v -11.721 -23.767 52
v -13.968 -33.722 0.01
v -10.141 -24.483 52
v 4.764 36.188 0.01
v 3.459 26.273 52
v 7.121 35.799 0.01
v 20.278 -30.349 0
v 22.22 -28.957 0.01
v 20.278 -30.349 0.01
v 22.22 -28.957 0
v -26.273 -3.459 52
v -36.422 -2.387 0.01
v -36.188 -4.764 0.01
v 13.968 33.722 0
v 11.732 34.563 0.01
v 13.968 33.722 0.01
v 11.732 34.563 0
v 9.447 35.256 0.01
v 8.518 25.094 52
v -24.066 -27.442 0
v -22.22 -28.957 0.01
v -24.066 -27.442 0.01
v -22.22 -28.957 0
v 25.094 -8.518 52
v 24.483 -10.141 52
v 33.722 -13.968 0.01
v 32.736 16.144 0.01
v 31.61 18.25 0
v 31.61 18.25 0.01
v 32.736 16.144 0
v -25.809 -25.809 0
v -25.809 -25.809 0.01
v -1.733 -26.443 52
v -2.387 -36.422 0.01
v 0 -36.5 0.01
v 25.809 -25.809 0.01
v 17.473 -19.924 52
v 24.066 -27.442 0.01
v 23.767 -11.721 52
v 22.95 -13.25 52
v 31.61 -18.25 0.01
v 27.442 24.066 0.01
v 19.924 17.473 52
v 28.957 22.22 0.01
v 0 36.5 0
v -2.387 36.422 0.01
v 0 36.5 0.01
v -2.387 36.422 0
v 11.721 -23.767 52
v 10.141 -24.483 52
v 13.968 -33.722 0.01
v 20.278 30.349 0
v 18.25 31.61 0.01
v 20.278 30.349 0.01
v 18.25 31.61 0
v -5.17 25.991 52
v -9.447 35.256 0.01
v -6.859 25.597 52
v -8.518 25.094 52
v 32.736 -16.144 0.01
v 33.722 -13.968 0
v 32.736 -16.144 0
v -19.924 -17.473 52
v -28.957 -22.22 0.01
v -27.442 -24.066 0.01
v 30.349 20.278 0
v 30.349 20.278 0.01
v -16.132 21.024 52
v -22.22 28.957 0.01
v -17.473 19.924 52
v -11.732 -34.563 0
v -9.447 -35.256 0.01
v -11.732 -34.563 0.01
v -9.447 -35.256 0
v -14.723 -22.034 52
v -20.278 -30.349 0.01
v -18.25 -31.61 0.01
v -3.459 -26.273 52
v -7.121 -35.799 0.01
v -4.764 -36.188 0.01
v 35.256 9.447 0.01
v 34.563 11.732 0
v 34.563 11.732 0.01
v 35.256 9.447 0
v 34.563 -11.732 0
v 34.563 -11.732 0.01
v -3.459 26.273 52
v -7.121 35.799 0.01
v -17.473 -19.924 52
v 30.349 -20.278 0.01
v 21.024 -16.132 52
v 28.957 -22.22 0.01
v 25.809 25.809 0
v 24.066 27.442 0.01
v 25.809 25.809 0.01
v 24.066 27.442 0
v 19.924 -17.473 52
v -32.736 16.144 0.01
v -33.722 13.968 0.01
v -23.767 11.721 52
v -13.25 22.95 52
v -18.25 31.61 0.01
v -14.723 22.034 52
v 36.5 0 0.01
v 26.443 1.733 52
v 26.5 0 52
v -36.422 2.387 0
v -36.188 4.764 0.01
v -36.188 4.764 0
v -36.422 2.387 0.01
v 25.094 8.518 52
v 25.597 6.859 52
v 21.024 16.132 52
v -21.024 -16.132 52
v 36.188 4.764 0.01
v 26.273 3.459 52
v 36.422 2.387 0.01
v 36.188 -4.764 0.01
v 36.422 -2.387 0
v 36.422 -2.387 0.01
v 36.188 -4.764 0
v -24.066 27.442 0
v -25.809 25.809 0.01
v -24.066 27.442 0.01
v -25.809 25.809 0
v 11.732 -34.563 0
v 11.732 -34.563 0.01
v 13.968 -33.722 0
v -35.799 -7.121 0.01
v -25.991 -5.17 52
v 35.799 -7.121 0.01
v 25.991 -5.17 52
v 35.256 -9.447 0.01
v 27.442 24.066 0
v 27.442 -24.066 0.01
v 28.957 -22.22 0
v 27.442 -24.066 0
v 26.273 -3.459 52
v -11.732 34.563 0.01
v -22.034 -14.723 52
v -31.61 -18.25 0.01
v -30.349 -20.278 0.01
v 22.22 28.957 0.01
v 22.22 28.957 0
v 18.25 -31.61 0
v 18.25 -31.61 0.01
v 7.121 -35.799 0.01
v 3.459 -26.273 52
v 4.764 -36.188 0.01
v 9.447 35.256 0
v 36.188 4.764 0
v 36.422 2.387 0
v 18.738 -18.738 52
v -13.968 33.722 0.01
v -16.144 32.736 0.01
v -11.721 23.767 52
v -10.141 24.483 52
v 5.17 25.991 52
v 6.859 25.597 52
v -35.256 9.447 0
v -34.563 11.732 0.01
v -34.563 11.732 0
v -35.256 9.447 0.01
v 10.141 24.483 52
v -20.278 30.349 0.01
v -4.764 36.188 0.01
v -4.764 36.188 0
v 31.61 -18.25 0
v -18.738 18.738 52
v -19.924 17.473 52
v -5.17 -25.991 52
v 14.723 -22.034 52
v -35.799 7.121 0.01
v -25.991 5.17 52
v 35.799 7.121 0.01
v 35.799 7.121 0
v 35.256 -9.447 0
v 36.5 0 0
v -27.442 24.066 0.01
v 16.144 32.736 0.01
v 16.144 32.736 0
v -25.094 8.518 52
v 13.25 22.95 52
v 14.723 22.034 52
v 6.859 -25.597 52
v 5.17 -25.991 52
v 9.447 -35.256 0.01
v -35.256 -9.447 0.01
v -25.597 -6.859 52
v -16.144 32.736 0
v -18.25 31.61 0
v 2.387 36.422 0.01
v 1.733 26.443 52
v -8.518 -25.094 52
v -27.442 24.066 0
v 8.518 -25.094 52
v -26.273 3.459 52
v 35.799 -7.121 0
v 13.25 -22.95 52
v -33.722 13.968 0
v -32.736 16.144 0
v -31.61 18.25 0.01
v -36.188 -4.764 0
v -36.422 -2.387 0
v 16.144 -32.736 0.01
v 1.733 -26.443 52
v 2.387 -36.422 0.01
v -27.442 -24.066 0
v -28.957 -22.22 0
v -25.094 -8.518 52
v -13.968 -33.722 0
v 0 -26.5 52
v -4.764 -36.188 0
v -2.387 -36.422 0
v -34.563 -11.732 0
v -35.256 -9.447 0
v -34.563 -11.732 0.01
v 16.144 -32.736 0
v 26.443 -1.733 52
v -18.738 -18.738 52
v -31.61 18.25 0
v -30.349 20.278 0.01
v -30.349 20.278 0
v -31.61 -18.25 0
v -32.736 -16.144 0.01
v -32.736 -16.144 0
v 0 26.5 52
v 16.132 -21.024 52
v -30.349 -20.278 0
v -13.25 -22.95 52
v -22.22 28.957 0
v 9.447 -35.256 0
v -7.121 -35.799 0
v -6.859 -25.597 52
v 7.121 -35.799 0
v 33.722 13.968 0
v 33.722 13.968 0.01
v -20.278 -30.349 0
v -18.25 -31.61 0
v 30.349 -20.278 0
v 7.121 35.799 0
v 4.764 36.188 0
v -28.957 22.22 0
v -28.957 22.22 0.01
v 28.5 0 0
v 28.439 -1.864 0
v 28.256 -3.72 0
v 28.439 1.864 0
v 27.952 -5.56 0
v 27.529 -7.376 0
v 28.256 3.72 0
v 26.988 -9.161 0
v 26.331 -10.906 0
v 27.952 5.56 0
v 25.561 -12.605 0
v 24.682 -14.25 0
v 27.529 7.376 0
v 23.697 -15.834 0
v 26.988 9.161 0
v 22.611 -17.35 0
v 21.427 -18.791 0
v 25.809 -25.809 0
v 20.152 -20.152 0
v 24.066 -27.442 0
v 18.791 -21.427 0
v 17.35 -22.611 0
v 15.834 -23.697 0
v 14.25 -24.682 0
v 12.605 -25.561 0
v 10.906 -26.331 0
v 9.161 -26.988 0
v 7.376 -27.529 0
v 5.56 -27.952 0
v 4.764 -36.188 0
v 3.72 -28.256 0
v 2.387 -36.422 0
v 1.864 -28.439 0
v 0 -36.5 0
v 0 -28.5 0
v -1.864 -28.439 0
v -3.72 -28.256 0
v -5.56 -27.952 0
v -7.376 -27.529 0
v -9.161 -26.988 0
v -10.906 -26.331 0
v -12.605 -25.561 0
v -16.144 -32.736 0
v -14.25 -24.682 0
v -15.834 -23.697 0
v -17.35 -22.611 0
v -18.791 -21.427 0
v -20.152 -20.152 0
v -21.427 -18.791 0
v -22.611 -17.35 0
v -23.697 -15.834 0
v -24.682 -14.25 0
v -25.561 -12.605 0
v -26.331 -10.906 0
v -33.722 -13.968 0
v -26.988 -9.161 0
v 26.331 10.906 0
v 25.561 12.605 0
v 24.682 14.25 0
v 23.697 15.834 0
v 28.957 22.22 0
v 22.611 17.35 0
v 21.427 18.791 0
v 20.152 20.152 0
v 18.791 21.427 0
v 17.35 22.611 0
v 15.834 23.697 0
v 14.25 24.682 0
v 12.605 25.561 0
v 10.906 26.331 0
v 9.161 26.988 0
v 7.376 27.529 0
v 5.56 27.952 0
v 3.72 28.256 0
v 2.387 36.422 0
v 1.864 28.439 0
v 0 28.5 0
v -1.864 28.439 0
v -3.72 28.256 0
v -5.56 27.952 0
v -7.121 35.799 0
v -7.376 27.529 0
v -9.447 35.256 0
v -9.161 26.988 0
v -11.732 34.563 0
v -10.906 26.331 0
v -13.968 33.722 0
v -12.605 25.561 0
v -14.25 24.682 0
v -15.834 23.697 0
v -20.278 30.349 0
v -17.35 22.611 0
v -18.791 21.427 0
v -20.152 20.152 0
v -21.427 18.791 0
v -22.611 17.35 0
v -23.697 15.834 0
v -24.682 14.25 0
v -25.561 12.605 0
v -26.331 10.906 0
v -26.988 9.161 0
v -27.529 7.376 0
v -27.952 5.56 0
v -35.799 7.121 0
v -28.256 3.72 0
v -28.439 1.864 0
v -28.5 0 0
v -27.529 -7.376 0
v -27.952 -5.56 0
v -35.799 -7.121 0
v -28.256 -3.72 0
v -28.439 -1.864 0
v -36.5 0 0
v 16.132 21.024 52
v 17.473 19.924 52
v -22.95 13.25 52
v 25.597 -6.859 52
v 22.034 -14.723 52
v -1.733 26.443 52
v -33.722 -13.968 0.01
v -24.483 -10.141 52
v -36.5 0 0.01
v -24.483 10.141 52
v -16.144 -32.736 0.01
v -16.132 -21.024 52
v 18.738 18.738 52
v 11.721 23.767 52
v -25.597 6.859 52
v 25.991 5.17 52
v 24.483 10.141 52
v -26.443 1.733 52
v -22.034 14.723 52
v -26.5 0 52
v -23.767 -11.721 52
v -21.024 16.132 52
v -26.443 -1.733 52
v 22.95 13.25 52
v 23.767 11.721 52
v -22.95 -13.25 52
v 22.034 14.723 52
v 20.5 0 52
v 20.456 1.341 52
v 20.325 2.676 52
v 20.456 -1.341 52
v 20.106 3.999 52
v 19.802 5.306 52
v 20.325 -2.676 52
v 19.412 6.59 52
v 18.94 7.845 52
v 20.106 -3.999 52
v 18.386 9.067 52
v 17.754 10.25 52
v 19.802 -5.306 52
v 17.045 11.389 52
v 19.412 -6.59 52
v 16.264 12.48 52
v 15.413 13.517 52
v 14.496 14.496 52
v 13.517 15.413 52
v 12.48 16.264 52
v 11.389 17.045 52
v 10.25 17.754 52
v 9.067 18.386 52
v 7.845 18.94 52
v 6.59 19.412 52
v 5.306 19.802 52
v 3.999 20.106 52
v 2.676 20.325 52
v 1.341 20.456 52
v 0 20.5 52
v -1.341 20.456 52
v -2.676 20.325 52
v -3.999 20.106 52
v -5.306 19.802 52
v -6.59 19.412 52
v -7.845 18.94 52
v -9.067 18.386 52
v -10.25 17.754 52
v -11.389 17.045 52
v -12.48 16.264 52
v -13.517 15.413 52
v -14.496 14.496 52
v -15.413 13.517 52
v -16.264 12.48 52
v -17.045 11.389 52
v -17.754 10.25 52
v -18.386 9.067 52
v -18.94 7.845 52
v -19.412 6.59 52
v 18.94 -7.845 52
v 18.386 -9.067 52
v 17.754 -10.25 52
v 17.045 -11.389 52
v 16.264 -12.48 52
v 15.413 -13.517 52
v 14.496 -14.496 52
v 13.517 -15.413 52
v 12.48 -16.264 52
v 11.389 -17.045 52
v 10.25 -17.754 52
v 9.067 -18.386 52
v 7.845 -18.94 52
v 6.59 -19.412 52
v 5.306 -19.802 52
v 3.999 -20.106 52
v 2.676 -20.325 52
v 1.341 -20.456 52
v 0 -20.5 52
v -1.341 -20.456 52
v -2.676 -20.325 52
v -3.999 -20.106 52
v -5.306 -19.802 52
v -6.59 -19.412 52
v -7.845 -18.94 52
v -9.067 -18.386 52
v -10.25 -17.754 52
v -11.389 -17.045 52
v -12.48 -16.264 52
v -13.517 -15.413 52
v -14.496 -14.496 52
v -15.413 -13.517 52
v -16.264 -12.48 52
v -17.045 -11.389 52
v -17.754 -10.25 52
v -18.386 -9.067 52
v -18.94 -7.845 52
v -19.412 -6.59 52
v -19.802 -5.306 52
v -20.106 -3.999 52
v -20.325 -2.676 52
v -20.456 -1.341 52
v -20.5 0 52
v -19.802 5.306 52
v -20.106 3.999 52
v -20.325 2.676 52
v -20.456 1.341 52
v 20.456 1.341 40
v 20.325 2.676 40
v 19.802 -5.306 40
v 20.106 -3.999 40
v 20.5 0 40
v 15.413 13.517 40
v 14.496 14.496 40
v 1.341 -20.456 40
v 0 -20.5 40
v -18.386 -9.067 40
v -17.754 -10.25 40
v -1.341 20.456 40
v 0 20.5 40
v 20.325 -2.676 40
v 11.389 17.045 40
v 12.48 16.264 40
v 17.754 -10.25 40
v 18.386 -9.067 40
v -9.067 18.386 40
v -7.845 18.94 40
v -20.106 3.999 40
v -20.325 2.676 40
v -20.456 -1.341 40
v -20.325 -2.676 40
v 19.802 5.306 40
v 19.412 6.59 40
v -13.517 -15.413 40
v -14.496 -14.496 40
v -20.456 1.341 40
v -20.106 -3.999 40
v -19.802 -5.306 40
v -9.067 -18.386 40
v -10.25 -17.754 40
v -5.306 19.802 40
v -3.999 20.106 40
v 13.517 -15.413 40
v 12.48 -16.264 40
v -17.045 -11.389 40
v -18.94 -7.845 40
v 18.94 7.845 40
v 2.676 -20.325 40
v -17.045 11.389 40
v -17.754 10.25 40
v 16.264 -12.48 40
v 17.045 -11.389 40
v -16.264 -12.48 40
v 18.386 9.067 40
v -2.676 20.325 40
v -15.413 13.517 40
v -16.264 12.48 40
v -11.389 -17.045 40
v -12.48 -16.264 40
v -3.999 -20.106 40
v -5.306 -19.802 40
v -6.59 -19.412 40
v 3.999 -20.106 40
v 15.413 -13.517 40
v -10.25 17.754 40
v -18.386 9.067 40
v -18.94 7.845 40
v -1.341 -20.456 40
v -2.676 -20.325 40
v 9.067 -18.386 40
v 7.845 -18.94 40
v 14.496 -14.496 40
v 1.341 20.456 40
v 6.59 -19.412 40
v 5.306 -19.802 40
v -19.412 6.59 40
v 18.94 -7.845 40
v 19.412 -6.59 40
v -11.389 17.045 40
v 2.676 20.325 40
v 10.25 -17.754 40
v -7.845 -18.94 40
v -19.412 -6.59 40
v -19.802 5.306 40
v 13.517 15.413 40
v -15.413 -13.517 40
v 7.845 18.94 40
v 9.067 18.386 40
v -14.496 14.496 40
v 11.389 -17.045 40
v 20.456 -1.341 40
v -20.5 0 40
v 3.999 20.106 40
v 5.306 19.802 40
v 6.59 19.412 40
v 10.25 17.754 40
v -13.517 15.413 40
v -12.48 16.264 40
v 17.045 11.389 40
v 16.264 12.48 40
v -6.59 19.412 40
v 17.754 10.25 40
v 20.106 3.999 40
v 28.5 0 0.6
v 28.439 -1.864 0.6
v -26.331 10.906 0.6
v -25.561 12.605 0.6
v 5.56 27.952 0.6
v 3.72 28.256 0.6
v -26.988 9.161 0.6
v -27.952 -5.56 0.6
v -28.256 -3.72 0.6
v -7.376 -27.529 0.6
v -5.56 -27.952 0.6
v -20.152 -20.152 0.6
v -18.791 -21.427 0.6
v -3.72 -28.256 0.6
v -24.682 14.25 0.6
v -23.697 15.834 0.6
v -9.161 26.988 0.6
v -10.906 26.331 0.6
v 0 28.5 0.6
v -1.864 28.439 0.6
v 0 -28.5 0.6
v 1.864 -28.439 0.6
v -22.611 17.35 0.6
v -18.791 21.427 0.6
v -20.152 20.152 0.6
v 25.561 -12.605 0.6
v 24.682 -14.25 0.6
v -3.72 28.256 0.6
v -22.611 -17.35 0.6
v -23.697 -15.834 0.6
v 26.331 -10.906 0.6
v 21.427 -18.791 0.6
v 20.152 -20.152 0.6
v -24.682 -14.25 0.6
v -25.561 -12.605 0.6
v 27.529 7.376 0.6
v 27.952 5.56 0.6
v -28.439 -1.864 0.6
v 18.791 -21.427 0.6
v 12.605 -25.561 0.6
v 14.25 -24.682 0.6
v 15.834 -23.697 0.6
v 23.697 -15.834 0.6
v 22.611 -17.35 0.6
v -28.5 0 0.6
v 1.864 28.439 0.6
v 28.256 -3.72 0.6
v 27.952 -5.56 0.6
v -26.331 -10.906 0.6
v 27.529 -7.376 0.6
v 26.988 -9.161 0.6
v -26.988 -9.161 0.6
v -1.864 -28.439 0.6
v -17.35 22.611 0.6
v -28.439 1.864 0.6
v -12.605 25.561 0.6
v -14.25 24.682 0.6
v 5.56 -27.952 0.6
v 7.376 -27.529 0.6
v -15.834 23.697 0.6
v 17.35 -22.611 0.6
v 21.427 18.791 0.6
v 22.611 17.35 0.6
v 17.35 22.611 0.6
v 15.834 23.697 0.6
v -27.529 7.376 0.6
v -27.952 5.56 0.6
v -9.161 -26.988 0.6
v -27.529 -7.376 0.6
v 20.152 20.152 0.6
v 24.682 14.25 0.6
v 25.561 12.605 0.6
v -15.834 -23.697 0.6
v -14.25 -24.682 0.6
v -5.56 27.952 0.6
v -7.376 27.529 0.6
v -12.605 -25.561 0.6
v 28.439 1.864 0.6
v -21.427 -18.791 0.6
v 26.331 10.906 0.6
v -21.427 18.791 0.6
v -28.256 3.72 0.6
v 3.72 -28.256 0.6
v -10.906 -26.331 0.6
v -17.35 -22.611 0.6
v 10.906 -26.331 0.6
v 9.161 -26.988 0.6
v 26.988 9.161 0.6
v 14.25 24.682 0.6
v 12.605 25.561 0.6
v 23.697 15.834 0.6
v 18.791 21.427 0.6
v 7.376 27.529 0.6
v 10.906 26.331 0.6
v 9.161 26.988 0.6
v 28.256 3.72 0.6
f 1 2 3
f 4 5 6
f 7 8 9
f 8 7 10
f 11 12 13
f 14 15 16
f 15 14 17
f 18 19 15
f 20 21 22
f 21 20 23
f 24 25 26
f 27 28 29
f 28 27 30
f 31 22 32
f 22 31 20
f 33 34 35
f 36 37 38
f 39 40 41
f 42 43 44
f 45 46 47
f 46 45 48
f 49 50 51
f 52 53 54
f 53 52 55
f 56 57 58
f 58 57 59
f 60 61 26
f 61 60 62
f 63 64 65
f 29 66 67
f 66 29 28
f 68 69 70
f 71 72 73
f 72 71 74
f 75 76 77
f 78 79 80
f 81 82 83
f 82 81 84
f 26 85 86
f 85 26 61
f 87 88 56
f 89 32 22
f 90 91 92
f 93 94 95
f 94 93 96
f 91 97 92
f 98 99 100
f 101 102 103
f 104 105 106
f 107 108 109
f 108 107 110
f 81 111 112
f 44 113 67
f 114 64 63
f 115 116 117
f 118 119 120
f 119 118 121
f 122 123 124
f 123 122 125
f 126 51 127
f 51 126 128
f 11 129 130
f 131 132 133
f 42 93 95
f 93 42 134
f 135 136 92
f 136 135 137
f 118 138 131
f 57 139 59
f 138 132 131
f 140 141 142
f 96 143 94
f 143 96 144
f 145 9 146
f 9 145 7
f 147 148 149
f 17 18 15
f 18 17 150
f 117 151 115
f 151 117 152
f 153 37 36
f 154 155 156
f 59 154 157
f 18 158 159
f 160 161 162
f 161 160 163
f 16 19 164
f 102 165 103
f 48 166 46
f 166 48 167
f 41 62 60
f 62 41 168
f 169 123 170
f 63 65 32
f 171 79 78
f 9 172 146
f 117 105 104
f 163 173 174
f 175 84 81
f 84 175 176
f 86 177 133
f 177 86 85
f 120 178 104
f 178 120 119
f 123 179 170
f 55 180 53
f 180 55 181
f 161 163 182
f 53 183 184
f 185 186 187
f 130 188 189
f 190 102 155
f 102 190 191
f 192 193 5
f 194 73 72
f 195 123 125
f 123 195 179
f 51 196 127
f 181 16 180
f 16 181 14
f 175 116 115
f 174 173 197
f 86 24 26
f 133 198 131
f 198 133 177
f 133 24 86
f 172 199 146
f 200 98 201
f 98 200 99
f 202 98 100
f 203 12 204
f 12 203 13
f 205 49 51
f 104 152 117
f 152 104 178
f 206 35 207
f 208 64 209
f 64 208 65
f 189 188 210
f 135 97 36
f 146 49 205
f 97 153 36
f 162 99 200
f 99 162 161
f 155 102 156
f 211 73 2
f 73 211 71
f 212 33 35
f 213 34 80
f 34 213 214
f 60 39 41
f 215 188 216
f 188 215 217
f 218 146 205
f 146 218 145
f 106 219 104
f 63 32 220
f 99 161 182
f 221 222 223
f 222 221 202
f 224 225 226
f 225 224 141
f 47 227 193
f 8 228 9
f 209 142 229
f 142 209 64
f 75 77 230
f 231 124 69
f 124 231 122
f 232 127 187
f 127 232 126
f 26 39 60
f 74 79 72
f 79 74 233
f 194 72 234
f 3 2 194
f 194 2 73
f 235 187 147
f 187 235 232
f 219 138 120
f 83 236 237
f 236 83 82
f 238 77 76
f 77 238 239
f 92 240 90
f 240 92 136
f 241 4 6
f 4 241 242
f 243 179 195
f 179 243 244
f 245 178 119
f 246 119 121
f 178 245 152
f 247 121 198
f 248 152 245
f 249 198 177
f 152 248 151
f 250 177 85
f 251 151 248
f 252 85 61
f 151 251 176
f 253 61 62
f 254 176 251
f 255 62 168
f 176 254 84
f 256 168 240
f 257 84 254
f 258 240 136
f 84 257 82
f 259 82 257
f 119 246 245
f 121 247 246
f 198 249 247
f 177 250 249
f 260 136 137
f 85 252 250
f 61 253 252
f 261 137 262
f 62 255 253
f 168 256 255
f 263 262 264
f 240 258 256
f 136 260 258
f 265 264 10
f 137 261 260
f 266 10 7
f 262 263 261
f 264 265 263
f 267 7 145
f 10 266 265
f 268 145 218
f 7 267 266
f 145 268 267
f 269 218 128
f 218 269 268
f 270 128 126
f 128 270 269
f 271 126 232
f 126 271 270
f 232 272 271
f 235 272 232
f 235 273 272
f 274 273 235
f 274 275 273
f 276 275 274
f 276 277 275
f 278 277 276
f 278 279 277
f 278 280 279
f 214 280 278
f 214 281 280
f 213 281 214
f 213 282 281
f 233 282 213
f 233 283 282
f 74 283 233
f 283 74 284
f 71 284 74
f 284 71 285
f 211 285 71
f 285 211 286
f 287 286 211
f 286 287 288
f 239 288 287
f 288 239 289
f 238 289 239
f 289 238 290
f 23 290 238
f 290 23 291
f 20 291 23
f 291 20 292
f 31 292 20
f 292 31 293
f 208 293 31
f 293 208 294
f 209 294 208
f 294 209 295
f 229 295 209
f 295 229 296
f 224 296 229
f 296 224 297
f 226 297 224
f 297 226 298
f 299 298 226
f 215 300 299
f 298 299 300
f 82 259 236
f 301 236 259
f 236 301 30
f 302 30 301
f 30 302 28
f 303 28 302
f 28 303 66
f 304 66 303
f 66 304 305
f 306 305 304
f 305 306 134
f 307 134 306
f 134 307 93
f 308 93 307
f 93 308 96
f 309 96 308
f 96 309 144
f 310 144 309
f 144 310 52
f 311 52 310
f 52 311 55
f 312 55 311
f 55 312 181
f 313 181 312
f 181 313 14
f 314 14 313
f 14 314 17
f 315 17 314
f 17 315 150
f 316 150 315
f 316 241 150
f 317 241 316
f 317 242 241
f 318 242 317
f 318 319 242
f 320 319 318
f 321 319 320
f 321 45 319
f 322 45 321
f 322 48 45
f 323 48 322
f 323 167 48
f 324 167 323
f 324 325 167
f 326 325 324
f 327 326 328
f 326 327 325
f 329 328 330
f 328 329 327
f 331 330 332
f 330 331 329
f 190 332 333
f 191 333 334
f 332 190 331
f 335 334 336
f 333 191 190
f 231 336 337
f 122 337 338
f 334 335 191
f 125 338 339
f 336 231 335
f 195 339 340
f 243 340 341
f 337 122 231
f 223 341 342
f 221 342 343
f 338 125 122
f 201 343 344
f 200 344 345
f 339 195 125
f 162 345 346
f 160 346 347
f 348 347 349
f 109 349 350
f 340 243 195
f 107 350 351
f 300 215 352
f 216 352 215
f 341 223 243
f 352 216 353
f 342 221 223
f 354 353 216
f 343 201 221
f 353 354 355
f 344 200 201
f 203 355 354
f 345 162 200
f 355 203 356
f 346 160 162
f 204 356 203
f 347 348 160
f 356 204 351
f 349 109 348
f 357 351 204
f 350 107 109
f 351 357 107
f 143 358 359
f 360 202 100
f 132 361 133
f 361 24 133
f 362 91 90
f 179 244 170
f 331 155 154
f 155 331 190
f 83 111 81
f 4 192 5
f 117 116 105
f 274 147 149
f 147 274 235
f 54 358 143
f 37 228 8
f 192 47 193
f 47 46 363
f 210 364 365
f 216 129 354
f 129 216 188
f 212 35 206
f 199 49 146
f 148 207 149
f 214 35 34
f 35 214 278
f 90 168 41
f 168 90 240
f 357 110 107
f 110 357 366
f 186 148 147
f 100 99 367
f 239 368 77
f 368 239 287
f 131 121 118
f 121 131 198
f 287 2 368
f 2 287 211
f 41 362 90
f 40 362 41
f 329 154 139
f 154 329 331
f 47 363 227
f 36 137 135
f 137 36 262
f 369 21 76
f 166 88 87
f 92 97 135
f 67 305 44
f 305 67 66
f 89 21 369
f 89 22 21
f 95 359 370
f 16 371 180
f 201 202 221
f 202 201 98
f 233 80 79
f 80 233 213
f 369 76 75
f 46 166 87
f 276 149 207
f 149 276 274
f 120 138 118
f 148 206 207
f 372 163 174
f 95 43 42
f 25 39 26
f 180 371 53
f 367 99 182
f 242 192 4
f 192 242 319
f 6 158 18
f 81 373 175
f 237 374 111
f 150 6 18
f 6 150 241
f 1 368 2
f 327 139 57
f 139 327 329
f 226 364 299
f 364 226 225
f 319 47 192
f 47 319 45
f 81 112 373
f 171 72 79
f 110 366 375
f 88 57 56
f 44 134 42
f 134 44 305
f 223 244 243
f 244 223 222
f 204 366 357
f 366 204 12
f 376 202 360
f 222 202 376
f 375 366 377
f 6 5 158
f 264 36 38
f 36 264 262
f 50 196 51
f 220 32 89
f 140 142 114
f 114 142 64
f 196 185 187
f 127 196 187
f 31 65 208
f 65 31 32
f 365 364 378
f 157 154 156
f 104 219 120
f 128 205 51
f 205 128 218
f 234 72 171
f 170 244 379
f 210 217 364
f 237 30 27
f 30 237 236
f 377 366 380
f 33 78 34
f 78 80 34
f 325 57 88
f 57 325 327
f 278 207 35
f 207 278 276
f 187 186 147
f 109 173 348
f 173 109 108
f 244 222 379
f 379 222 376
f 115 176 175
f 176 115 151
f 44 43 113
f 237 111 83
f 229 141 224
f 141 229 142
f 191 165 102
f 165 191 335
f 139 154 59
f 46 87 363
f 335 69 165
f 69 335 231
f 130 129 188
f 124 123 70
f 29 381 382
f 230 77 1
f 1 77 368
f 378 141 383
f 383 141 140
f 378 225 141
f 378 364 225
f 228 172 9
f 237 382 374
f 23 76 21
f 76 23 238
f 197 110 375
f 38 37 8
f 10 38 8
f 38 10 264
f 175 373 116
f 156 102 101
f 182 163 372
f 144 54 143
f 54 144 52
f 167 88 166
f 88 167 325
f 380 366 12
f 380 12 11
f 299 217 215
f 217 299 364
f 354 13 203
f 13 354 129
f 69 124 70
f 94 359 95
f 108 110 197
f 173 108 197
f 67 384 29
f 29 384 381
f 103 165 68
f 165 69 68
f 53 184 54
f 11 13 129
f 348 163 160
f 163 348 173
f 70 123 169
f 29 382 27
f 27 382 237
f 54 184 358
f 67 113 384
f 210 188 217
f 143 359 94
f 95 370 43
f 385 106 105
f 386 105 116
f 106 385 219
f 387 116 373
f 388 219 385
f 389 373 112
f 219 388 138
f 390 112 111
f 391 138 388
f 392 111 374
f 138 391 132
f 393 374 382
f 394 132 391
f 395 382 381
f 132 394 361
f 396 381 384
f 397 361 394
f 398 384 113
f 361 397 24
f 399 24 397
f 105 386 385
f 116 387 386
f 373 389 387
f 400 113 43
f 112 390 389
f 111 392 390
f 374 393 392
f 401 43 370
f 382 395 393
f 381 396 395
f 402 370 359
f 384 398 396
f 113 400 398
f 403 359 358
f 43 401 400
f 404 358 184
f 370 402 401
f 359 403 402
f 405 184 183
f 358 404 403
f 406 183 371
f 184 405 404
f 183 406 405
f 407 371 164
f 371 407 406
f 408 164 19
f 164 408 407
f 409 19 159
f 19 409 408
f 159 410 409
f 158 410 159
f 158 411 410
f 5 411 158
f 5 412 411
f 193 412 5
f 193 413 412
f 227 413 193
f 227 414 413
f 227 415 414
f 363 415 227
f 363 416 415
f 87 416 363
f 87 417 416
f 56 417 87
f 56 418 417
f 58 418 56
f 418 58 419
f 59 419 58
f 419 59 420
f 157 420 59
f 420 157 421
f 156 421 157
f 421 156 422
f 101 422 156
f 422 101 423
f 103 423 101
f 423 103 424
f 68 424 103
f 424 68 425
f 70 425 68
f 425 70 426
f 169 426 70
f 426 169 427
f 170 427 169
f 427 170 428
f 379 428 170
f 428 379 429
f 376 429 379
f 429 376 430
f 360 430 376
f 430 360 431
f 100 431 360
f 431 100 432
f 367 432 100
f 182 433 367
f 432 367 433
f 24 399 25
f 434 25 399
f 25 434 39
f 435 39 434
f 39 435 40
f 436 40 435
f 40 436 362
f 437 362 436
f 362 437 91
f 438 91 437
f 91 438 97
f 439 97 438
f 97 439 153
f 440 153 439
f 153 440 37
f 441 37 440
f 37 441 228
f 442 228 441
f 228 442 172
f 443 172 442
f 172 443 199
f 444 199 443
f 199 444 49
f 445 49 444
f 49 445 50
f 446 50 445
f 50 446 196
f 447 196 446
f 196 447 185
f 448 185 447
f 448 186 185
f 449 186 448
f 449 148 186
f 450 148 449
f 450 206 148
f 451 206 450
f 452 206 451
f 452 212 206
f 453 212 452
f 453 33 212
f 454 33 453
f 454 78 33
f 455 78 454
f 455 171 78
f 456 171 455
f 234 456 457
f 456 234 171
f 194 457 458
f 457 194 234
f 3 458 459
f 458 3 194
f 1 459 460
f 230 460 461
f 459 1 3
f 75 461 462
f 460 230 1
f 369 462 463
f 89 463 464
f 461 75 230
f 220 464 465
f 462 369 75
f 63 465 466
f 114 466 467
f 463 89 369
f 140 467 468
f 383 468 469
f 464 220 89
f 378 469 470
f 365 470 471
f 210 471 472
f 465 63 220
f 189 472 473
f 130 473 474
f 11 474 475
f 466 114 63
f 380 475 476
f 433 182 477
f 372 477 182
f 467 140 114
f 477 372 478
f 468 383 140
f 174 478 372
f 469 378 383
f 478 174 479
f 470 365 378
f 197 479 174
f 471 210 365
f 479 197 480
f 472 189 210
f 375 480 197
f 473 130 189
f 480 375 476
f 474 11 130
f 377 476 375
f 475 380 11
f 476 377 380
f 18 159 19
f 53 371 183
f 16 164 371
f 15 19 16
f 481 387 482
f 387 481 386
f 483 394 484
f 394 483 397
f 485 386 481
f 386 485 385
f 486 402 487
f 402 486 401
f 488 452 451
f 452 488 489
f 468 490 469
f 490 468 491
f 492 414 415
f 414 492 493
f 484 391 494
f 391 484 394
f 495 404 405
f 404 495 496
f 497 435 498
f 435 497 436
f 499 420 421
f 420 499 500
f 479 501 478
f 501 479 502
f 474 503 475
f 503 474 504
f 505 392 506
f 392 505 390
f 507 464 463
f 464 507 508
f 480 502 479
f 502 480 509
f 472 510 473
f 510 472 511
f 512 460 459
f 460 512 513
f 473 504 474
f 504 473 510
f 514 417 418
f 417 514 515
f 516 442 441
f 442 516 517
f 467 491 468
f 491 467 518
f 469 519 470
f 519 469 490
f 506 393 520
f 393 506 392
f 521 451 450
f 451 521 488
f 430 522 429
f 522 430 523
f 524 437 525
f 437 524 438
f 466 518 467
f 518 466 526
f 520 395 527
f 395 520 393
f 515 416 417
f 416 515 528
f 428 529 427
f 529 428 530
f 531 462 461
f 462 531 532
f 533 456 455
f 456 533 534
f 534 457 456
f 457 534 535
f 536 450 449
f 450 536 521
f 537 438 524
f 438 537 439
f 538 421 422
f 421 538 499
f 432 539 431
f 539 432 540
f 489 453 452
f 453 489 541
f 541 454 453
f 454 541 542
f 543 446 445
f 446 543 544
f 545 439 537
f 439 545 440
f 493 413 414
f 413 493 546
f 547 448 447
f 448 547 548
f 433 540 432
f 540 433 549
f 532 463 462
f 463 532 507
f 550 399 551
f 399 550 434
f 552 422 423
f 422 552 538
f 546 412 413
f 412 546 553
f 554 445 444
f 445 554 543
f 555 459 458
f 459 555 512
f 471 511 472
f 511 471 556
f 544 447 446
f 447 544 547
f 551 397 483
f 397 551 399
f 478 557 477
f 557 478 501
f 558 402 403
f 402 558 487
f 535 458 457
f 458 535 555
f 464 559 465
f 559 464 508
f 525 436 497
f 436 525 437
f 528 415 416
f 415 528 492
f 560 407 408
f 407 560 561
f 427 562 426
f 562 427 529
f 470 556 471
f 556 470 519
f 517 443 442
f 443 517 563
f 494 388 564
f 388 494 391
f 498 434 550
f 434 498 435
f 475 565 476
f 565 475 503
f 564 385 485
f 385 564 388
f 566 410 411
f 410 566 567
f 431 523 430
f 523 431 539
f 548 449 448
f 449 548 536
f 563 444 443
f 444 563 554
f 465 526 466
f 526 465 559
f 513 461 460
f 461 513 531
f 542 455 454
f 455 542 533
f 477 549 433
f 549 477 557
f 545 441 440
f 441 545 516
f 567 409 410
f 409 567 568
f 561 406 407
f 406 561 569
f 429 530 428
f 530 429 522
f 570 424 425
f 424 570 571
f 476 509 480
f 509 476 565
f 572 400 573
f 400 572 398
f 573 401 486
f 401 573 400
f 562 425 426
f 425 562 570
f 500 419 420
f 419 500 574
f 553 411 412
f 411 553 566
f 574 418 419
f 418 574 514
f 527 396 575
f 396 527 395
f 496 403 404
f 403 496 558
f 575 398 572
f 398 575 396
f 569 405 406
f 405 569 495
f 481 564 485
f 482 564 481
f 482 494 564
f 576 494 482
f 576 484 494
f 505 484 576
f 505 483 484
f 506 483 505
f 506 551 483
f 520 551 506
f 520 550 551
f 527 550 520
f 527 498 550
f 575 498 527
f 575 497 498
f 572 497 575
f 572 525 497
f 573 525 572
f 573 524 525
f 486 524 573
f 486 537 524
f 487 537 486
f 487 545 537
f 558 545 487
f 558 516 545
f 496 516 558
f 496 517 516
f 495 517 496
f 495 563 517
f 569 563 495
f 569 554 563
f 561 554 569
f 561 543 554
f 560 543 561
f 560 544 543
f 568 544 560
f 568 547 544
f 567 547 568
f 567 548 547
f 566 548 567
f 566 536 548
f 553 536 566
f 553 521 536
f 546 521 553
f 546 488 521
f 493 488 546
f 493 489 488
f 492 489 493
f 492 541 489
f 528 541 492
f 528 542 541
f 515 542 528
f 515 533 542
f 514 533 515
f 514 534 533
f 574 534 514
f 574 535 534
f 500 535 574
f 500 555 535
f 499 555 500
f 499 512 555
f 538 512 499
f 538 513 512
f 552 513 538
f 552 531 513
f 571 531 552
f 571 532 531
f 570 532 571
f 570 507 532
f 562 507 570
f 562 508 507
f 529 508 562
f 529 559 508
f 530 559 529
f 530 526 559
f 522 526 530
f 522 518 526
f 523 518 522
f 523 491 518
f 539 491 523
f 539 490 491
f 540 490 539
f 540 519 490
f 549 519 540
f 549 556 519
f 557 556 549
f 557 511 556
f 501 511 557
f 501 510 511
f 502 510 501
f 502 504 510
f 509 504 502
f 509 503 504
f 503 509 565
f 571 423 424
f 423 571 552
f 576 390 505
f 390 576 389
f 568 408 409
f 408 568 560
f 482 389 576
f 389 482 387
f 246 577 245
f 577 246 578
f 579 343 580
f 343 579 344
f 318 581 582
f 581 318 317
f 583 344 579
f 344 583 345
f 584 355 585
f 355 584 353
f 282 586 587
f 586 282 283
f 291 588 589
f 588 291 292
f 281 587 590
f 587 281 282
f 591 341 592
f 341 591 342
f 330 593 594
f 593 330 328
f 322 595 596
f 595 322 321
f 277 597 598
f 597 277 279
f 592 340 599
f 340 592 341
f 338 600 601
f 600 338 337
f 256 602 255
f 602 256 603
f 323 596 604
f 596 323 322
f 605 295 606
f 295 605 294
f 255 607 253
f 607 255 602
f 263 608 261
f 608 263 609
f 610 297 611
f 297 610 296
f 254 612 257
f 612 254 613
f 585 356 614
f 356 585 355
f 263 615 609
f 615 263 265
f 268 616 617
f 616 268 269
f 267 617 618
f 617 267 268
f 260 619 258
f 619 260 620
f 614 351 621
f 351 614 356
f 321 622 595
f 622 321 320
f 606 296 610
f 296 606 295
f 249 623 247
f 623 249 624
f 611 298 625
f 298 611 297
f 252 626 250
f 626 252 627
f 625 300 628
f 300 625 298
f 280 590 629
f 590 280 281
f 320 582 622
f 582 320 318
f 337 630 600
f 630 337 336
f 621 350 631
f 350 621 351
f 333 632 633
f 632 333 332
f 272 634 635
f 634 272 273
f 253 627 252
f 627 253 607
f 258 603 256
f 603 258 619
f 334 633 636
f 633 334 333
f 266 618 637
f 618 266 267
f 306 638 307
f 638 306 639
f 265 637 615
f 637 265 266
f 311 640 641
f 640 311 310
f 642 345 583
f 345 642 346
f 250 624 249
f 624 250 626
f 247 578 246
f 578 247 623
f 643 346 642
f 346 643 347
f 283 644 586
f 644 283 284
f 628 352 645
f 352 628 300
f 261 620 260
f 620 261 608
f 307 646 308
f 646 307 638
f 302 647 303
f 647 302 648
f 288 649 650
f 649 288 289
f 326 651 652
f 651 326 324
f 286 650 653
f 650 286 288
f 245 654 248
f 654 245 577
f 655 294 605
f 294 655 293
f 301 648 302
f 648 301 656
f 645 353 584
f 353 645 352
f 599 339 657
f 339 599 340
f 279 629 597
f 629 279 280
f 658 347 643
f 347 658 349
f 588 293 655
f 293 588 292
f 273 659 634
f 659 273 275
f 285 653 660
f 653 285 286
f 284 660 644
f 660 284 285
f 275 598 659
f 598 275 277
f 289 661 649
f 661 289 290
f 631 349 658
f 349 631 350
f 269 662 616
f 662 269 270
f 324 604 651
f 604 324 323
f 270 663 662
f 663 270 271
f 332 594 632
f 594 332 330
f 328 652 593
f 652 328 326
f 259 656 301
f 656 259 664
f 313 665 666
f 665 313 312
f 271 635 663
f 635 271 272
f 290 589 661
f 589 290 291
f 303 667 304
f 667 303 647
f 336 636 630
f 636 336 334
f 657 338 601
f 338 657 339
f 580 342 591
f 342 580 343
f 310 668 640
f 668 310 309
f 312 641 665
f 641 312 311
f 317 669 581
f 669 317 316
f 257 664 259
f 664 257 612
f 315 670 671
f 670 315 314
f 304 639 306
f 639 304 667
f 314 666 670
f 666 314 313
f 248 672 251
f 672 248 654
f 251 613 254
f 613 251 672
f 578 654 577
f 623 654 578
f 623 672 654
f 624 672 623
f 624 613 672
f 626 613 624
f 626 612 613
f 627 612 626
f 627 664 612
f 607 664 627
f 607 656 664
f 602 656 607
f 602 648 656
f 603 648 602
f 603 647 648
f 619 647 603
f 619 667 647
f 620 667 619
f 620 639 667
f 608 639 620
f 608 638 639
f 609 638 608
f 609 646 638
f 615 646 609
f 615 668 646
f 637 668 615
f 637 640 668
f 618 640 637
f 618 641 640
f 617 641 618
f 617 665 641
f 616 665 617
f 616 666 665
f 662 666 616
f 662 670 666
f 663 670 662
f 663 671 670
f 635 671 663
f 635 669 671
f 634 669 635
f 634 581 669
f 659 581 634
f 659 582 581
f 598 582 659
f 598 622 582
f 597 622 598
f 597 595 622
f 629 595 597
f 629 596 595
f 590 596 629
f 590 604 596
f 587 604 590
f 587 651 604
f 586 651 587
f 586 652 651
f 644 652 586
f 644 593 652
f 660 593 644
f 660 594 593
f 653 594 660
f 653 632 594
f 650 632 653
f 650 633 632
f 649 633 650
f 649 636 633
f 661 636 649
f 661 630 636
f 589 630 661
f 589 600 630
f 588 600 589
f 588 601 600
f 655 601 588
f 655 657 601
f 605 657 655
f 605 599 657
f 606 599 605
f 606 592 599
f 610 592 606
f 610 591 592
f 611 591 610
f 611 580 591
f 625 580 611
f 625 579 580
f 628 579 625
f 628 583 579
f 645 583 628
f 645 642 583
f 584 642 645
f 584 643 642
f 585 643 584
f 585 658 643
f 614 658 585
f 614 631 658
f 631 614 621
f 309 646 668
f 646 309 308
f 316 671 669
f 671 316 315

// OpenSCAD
// Furniture Riser / Leg Cup — lift a bed, sofa, table or desk,
// or stop a leg from scratching the floor. Print one per leg.
// Print upright (as rendered). Use 4+ walls and 30%+ infill:
// in this orientation the load is pure compression, which plastic handles well.

/* [Leg] */
// Leg shape
leg_shape = "round";    // ["round", "square"]
// Leg diameter, or side length for square legs (mm). Add ~1 mm.
leg_size = 41;          // [10:0.5:120]
// How deep the leg sits in the cup (mm)
pocket_depth = 12;      // [3:1:40]

/* [Riser] */
// How much the furniture is lifted (mm)
lift = 40;              // [0:1:150]
// Wall around the leg (mm)
wall = 6;               // [3:0.5:20]
// Base flare: how much wider the foot is than the top (mm)
flare = 10;             // [0:1:40]

/* [Hidden] */
$fn = 96;
top_w = leg_size + 2 * wall;
bot_w = top_w + 2 * flare;
total_h = lift + pocket_depth;

module footprint(w) {
    if (leg_shape == "round") circle(d = w);
    else offset(r = 3) square(w - 6, center = true);
}

difference() {
    hull() {
        linear_extrude(0.01) footprint(bot_w);
        translate([0, 0, total_h - 0.01]) linear_extrude(0.01) footprint(top_w);
    }
    translate([0, 0, lift]) linear_extrude(pocket_depth + 1) footprint(leg_size);
    // shallow recess on the bottom so it sits flat on uneven floors
    if (bot_w > 30)
        translate([0, 0, -1]) linear_extrude(1.6) footprint(bot_w - 16);
}
